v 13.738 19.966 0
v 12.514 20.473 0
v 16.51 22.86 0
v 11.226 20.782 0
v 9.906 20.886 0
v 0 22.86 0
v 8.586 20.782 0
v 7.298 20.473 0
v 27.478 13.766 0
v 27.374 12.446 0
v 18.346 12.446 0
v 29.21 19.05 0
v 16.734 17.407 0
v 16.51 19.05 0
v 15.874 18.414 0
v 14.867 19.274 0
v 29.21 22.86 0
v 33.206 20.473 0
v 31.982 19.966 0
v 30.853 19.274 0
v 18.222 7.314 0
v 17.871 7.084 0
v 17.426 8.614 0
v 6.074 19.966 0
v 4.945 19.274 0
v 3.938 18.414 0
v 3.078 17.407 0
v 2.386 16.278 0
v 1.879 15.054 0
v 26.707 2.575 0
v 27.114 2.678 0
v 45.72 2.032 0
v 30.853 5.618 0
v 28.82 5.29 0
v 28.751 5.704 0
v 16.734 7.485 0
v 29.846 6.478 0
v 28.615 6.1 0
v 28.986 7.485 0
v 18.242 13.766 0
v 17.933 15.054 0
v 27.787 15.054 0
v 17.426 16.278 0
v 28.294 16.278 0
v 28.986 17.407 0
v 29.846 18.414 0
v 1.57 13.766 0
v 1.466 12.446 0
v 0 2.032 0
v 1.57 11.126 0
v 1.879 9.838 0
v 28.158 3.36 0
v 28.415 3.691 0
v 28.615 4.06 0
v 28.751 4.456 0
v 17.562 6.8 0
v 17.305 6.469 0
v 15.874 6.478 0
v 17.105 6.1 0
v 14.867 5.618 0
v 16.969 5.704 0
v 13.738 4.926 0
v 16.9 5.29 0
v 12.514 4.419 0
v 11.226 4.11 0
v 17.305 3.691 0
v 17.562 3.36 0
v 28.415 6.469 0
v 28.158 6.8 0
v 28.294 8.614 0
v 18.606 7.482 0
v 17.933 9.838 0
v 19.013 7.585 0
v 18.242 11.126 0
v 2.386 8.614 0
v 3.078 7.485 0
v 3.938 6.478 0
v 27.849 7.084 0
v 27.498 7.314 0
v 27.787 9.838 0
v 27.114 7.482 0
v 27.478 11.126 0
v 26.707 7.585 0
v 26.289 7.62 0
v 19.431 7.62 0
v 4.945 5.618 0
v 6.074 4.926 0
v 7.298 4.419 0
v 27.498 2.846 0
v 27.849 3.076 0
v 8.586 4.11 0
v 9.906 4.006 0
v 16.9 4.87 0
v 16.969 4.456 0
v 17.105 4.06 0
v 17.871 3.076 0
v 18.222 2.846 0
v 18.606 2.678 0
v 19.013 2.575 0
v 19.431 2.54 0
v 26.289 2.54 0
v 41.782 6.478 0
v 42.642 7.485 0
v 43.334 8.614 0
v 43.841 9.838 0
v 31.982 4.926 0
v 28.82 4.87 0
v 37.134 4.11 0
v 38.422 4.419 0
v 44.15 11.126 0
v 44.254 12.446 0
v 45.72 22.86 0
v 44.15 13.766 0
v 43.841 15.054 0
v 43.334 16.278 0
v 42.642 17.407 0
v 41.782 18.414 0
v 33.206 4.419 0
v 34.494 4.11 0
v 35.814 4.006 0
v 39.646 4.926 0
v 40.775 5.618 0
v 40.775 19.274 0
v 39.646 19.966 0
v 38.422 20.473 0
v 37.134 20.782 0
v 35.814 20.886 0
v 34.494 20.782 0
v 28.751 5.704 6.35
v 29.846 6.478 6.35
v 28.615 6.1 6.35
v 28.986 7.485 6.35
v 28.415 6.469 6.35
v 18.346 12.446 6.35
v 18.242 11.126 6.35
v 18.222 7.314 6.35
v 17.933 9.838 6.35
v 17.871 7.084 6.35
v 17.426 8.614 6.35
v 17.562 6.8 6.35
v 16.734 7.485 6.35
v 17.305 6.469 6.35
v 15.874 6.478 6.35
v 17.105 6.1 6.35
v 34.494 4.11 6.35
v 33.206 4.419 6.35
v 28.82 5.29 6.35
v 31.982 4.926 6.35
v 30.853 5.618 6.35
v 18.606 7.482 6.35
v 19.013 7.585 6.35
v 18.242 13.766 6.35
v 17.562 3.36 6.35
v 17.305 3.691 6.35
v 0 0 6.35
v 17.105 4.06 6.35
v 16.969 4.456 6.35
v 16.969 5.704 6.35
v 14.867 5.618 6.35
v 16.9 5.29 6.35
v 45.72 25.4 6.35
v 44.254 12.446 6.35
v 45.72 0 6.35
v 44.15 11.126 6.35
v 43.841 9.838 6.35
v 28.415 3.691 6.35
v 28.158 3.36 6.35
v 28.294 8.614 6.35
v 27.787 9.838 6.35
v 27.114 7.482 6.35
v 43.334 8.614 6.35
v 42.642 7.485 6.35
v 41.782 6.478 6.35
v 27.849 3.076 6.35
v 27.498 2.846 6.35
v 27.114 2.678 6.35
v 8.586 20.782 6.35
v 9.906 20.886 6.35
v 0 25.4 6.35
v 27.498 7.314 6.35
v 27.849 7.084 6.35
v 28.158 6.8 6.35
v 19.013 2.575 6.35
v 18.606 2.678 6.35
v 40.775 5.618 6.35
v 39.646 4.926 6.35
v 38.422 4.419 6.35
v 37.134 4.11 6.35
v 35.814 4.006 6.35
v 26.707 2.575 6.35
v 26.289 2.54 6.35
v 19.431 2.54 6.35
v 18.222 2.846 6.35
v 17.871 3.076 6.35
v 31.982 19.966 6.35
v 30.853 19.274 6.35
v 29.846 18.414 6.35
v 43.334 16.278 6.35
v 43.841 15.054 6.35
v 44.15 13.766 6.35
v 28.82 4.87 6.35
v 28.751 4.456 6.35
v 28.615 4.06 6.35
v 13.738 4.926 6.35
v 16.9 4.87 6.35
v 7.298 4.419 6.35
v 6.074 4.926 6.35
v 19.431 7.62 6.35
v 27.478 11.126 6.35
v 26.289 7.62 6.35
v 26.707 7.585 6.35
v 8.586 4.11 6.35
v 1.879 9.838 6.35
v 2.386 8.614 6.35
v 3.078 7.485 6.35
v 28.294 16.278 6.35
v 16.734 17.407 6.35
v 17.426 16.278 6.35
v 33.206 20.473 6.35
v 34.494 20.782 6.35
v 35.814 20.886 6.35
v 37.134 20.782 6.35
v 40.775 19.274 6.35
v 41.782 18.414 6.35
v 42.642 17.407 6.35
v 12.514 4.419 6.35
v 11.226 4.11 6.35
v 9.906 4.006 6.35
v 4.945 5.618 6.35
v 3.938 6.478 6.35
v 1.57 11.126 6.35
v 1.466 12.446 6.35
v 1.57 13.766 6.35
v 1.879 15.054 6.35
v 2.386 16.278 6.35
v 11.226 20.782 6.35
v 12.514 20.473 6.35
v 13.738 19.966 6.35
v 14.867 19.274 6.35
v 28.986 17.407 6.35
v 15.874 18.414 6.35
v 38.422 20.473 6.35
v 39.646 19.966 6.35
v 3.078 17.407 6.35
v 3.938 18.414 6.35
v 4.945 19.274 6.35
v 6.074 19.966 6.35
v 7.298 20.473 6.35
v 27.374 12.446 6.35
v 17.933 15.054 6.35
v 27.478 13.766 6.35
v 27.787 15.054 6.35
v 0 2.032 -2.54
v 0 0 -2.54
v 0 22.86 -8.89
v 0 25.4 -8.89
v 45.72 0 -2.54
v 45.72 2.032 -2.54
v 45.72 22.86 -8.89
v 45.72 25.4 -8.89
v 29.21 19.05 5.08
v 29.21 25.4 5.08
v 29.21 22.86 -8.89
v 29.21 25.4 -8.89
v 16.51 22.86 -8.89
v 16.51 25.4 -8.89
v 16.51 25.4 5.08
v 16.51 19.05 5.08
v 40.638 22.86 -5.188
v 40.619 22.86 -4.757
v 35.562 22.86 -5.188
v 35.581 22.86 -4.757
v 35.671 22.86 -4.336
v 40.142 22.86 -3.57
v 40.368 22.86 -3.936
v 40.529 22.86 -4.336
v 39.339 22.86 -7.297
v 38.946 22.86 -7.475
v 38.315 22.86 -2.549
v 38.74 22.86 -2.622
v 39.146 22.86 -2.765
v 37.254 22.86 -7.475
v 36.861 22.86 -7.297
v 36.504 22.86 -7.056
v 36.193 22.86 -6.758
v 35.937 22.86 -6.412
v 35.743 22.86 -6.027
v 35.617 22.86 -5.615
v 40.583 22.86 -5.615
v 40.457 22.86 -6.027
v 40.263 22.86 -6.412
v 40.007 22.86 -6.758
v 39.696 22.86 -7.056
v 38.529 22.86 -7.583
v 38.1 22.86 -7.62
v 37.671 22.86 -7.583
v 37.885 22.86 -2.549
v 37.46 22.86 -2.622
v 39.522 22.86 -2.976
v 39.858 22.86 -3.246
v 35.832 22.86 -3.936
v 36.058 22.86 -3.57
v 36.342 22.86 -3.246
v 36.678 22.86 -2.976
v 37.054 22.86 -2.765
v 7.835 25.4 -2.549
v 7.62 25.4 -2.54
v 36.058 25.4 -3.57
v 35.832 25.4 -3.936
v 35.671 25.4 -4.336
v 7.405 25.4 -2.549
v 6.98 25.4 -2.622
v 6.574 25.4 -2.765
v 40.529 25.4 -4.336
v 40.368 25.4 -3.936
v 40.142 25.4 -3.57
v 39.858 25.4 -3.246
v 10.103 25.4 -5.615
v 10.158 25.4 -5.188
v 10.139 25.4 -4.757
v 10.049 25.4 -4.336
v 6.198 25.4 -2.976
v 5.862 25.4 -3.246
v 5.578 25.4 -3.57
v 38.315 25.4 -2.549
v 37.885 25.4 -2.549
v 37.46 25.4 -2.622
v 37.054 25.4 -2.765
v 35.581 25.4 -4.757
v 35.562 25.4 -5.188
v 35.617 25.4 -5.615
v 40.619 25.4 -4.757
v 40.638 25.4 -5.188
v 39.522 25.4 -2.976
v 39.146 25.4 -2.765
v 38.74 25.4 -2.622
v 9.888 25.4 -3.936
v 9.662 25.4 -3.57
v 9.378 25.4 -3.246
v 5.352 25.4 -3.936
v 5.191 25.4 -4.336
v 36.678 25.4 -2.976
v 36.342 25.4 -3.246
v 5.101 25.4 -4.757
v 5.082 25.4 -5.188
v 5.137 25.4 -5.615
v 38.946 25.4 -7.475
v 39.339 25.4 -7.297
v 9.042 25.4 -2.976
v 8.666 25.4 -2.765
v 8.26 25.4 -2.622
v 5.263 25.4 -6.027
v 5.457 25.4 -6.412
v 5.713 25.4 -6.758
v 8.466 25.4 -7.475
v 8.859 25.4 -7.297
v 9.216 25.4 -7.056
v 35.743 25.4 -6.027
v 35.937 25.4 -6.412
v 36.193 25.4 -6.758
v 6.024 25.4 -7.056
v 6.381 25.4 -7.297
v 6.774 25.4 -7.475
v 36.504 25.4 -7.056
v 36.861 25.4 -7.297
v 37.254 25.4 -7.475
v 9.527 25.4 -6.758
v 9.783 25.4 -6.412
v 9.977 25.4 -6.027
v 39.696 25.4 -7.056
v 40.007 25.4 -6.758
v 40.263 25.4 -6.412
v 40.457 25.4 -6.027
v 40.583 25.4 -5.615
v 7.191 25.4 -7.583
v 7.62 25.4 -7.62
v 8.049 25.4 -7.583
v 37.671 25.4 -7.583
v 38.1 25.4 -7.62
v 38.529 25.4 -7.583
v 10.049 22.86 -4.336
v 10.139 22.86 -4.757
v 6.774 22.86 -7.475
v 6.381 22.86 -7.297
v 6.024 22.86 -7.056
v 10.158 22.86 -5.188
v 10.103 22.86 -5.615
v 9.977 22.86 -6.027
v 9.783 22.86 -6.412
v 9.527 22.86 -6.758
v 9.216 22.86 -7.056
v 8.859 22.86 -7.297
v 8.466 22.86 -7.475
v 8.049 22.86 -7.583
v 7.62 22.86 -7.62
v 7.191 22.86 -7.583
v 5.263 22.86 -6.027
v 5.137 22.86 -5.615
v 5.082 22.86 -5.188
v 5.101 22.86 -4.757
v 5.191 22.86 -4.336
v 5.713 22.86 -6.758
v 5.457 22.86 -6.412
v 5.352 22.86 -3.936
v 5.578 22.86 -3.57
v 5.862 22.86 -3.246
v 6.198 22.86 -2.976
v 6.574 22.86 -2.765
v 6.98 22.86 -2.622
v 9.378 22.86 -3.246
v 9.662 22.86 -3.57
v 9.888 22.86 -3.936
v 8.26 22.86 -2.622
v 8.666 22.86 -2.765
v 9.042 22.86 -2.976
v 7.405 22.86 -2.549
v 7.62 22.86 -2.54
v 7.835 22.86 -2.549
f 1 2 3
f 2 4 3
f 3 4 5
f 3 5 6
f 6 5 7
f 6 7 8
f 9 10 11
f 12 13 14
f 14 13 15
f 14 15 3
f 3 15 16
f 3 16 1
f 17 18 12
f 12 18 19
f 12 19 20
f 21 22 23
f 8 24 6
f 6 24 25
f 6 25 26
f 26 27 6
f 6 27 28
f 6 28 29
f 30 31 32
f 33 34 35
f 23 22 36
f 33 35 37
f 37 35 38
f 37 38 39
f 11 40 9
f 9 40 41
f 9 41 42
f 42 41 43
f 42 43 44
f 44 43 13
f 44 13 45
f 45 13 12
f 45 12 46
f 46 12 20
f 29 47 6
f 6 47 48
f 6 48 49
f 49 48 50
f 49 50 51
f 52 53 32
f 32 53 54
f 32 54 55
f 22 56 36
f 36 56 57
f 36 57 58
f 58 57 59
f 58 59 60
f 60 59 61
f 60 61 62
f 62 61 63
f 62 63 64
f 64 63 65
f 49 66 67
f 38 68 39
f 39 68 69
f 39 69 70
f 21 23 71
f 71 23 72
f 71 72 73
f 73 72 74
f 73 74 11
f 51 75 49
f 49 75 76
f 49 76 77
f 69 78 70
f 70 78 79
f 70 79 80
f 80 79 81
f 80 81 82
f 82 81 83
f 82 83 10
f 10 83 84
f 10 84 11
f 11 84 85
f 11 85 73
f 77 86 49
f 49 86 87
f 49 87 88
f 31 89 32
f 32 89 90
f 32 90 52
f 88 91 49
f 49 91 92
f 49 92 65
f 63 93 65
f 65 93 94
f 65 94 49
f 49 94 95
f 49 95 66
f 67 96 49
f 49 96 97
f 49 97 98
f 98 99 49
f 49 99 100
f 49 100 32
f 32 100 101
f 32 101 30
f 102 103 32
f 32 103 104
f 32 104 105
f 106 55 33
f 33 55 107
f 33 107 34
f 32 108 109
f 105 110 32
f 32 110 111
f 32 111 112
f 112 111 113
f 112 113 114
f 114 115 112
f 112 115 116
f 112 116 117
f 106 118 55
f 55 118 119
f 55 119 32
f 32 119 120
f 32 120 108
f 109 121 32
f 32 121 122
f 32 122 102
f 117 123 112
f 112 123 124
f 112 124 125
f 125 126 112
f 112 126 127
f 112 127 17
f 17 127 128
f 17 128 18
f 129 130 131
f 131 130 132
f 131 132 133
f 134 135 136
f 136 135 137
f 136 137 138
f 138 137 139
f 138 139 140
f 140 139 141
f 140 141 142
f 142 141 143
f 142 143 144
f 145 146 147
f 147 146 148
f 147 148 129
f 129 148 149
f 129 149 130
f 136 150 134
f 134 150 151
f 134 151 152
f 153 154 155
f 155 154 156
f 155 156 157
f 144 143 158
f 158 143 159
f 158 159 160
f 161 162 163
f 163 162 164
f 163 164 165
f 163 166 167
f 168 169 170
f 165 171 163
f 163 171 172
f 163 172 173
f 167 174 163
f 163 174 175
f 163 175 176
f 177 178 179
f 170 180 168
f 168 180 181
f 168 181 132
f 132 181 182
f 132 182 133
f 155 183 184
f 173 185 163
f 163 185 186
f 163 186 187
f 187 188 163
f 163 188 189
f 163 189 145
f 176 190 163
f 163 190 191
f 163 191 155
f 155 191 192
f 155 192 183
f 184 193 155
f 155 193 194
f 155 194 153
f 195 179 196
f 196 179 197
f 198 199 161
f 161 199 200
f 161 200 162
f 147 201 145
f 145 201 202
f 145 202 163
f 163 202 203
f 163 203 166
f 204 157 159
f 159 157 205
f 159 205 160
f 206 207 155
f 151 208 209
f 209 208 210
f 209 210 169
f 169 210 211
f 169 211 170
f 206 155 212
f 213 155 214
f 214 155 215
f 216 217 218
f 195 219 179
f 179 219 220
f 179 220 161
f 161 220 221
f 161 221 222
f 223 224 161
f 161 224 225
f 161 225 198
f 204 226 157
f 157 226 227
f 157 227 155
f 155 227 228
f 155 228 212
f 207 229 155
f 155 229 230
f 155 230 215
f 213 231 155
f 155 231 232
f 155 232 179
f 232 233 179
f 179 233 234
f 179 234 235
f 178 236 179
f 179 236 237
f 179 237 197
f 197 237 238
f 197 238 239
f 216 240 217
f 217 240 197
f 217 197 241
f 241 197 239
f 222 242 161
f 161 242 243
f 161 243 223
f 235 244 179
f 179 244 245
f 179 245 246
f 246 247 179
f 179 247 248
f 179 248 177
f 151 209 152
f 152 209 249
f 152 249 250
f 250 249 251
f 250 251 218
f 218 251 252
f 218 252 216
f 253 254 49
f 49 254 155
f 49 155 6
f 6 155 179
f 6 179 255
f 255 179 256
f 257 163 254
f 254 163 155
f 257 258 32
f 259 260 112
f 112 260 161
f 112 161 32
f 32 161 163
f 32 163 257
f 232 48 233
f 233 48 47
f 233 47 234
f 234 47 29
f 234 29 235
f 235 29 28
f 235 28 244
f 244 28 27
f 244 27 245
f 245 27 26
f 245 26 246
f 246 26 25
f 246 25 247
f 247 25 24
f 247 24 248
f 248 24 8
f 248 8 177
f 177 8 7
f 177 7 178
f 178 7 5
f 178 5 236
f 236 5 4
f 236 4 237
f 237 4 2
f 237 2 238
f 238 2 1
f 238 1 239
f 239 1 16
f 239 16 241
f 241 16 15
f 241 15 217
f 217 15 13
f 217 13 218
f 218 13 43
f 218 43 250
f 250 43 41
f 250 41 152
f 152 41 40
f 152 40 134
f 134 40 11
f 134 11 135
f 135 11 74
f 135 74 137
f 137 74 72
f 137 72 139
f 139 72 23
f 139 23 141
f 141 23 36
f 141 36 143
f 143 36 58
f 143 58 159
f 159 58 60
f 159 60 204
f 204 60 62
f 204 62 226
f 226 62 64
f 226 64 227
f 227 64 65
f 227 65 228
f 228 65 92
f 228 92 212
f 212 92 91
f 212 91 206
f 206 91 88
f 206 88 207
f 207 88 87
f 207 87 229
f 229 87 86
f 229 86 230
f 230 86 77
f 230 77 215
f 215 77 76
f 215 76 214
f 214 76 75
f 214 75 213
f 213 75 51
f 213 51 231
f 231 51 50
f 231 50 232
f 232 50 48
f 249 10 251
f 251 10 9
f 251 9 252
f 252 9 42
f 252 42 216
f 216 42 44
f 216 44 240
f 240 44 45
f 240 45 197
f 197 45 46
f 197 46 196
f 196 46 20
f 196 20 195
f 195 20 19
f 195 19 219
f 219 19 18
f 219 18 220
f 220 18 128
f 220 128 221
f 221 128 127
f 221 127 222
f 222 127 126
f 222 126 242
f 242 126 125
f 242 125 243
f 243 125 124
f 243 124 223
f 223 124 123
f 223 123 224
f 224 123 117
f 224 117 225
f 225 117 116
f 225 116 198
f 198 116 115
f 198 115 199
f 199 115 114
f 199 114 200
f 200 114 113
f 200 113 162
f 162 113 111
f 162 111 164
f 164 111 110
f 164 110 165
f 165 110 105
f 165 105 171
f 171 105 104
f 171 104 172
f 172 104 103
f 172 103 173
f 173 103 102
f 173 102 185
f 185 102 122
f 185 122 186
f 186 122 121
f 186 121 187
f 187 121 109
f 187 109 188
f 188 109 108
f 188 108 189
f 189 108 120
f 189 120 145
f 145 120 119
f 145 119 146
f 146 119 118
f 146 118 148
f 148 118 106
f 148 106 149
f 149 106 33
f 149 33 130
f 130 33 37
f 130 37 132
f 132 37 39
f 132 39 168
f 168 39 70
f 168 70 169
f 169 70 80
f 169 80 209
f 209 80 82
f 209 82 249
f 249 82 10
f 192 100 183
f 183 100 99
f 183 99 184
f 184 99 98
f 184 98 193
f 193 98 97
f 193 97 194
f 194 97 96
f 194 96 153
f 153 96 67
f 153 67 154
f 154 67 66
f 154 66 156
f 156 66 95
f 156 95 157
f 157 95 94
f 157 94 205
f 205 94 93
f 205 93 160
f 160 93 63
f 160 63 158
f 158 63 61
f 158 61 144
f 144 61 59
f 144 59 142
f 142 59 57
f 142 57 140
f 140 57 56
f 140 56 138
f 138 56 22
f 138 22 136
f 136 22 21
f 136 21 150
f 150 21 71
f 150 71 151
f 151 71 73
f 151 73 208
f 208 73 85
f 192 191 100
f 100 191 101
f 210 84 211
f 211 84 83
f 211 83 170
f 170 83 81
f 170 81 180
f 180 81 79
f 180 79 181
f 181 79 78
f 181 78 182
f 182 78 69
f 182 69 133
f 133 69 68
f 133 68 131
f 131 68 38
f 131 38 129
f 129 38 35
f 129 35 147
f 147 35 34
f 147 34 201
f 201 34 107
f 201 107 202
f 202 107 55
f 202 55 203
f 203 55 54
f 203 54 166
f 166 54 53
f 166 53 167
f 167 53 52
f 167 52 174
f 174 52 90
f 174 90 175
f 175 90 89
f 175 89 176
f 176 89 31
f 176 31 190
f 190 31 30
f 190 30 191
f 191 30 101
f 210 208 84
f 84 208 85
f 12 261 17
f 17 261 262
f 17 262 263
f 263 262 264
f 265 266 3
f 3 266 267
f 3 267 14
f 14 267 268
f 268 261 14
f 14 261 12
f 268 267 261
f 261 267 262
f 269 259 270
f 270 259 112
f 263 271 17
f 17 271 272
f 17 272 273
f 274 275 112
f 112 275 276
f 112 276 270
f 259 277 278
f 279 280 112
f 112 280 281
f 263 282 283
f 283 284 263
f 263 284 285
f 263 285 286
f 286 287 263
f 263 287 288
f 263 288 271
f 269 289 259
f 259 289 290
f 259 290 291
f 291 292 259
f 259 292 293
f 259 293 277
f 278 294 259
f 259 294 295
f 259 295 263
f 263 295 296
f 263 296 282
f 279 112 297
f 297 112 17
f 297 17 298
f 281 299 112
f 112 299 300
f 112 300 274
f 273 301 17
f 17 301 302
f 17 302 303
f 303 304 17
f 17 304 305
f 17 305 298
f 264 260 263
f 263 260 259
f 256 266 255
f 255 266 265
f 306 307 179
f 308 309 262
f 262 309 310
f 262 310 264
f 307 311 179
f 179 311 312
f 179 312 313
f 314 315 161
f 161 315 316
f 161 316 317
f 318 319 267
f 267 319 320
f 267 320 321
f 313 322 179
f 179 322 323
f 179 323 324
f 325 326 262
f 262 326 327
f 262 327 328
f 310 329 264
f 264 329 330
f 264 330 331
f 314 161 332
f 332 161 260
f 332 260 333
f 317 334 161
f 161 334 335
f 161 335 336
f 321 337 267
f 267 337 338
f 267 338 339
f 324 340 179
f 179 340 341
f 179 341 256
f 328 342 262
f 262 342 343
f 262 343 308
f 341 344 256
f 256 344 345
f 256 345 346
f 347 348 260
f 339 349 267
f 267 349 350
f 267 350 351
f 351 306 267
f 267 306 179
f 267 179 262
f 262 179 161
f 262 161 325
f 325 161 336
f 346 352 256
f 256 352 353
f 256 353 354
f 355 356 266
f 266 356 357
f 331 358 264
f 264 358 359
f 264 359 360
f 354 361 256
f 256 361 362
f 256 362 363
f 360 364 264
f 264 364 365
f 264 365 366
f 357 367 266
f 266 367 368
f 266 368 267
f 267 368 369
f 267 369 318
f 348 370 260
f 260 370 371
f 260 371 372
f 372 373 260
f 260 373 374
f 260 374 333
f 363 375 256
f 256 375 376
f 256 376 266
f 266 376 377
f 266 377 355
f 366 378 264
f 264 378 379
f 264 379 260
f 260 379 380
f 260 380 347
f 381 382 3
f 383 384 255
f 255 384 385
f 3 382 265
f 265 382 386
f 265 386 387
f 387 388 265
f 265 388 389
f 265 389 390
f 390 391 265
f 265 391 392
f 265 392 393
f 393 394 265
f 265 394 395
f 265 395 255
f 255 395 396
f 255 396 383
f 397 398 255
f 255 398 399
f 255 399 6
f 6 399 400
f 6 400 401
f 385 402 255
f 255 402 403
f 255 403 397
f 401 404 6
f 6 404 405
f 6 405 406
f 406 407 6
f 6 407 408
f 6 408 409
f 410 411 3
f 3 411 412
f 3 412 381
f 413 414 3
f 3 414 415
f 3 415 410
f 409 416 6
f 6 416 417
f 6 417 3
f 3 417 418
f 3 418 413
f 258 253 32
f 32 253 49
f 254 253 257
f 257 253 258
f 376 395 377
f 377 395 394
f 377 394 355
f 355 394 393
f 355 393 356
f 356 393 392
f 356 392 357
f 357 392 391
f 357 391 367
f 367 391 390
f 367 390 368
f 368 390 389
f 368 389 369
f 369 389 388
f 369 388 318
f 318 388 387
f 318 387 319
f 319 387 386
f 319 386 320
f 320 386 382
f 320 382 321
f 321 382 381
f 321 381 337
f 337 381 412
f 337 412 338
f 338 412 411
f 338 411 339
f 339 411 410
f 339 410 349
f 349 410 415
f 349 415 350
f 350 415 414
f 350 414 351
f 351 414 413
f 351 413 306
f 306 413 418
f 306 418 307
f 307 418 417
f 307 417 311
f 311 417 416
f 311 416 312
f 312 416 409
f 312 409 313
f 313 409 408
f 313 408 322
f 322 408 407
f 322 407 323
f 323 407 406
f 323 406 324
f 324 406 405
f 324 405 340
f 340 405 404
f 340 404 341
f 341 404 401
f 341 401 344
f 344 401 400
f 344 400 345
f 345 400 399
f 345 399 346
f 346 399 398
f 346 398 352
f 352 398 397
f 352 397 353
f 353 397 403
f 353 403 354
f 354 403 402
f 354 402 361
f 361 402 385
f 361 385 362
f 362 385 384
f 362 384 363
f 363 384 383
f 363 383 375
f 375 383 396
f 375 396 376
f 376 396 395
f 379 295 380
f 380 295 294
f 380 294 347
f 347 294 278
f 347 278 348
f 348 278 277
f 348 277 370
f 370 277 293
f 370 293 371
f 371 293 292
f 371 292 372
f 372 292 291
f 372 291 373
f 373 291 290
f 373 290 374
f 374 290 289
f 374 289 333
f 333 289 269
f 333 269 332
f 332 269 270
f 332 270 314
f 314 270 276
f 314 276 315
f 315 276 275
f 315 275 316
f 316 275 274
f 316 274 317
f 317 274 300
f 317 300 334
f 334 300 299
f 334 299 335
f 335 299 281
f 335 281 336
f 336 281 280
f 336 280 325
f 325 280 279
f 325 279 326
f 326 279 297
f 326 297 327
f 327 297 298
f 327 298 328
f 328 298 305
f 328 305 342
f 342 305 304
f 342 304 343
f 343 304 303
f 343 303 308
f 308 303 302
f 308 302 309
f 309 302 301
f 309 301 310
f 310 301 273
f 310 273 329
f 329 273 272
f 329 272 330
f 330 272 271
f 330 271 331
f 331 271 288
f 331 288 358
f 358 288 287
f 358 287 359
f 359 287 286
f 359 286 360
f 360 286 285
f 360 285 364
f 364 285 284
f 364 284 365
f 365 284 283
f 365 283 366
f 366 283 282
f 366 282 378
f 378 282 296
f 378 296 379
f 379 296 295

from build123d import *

# Parameters (mm, degrees)
SKETCH1_W           = 45.72
SKETCH1_H           = 22.86
SKETCH1_R           = 8.44
BOSS_EXTRUDE1_DEPTH = 6.35
SKETCH2_W           = 12.7
SKETCH2_H           = 3.81
CUT_EXTRUDE1_DEPTH  = 5.08
BOSS_EXTRUDE2_DEPTH = 2.54
SKETCH4_W           = 45.72
SKETCH4_H           = 2.032
BOSS_EXTRUDE3_DEPTH = 2.54
SKETCH5_R           = 2.54
CUT_EXTRUDE2_DEPTH  = 52.883813468


with BuildPart() as part:
    # Sketch1 → Boss-Extrude1 (new body)
    with BuildSketch(Plane.XY):
        with Locations((22.86, 11.43)):
            Rectangle(SKETCH1_W, SKETCH1_H)
        with Locations((9.906, 12.446)):
            Circle(SKETCH1_R, mode=Mode.SUBTRACT)
        with Locations((35.814, 12.446)):
            Circle(SKETCH1_R, mode=Mode.SUBTRACT)
        with BuildLine():
            Line((19.431, 7.62), (26.289, 7.62))
            ThreePointArc((26.289, 7.62), (28.829, 5.08), (26.289, 2.54))
            Line((26.289, 2.54), (19.431, 2.54))
            ThreePointArc((19.431, 2.54), (16.891, 5.08), (19.431, 7.62))
        make_face(mode=Mode.SUBTRACT)
    extrude(amount=BOSS_EXTRUDE1_DEPTH)

    # Sketch2 → Cut-Extrude1 (cut)
    with BuildSketch(Plane(origin=(0, 0, 0), x_dir=(-1, 0, 0), z_dir=(0, 0, -1))):
        with Locations((-22.86, 20.955)):
            Rectangle(SKETCH2_W, SKETCH2_H)
    extrude(amount=-CUT_EXTRUDE1_DEPTH, mode=Mode.SUBTRACT)

    # Sketch3 → Boss-Extrude2 (add)
    with BuildSketch(Plane(origin=(0, 22.86, 0), x_dir=(1, 0, 0), z_dir=(0, 1, 0))):
        Polygon((0, -6.35), (0, 8.89), (16.51, 8.89), (16.51, -5.08), (29.21, -5.08), (29.21, 8.89), (45.72, 8.89), (45.72, -6.35), align=None)
    extrude(amount=BOSS_EXTRUDE2_DEPTH)

    # Sketch4 → Boss-Extrude3 (add)
    with BuildSketch(Plane(origin=(0, 0, 0), x_dir=(-1, 0, 0), z_dir=(0, 0, -1))):
        with Locations((-22.86, 1.016)):
            Rectangle(SKETCH4_W, SKETCH4_H)
    extrude(amount=BOSS_EXTRUDE3_DEPTH)

    # Sketch5 → Cut-Extrude2 (cut, through all)
    with BuildSketch(Plane.XZ.offset(-22.86)):
        with Locations(Location((38.1, -5.08, 0), (0, 0, 270))):
            Circle(SKETCH5_R)
        with Locations(Location((7.62, -5.08, 0), (0, 0, 90))):
            Circle(SKETCH5_R)
    extrude(amount=-CUT_EXTRUDE2_DEPTH, mode=Mode.SUBTRACT)


solid = part.part
